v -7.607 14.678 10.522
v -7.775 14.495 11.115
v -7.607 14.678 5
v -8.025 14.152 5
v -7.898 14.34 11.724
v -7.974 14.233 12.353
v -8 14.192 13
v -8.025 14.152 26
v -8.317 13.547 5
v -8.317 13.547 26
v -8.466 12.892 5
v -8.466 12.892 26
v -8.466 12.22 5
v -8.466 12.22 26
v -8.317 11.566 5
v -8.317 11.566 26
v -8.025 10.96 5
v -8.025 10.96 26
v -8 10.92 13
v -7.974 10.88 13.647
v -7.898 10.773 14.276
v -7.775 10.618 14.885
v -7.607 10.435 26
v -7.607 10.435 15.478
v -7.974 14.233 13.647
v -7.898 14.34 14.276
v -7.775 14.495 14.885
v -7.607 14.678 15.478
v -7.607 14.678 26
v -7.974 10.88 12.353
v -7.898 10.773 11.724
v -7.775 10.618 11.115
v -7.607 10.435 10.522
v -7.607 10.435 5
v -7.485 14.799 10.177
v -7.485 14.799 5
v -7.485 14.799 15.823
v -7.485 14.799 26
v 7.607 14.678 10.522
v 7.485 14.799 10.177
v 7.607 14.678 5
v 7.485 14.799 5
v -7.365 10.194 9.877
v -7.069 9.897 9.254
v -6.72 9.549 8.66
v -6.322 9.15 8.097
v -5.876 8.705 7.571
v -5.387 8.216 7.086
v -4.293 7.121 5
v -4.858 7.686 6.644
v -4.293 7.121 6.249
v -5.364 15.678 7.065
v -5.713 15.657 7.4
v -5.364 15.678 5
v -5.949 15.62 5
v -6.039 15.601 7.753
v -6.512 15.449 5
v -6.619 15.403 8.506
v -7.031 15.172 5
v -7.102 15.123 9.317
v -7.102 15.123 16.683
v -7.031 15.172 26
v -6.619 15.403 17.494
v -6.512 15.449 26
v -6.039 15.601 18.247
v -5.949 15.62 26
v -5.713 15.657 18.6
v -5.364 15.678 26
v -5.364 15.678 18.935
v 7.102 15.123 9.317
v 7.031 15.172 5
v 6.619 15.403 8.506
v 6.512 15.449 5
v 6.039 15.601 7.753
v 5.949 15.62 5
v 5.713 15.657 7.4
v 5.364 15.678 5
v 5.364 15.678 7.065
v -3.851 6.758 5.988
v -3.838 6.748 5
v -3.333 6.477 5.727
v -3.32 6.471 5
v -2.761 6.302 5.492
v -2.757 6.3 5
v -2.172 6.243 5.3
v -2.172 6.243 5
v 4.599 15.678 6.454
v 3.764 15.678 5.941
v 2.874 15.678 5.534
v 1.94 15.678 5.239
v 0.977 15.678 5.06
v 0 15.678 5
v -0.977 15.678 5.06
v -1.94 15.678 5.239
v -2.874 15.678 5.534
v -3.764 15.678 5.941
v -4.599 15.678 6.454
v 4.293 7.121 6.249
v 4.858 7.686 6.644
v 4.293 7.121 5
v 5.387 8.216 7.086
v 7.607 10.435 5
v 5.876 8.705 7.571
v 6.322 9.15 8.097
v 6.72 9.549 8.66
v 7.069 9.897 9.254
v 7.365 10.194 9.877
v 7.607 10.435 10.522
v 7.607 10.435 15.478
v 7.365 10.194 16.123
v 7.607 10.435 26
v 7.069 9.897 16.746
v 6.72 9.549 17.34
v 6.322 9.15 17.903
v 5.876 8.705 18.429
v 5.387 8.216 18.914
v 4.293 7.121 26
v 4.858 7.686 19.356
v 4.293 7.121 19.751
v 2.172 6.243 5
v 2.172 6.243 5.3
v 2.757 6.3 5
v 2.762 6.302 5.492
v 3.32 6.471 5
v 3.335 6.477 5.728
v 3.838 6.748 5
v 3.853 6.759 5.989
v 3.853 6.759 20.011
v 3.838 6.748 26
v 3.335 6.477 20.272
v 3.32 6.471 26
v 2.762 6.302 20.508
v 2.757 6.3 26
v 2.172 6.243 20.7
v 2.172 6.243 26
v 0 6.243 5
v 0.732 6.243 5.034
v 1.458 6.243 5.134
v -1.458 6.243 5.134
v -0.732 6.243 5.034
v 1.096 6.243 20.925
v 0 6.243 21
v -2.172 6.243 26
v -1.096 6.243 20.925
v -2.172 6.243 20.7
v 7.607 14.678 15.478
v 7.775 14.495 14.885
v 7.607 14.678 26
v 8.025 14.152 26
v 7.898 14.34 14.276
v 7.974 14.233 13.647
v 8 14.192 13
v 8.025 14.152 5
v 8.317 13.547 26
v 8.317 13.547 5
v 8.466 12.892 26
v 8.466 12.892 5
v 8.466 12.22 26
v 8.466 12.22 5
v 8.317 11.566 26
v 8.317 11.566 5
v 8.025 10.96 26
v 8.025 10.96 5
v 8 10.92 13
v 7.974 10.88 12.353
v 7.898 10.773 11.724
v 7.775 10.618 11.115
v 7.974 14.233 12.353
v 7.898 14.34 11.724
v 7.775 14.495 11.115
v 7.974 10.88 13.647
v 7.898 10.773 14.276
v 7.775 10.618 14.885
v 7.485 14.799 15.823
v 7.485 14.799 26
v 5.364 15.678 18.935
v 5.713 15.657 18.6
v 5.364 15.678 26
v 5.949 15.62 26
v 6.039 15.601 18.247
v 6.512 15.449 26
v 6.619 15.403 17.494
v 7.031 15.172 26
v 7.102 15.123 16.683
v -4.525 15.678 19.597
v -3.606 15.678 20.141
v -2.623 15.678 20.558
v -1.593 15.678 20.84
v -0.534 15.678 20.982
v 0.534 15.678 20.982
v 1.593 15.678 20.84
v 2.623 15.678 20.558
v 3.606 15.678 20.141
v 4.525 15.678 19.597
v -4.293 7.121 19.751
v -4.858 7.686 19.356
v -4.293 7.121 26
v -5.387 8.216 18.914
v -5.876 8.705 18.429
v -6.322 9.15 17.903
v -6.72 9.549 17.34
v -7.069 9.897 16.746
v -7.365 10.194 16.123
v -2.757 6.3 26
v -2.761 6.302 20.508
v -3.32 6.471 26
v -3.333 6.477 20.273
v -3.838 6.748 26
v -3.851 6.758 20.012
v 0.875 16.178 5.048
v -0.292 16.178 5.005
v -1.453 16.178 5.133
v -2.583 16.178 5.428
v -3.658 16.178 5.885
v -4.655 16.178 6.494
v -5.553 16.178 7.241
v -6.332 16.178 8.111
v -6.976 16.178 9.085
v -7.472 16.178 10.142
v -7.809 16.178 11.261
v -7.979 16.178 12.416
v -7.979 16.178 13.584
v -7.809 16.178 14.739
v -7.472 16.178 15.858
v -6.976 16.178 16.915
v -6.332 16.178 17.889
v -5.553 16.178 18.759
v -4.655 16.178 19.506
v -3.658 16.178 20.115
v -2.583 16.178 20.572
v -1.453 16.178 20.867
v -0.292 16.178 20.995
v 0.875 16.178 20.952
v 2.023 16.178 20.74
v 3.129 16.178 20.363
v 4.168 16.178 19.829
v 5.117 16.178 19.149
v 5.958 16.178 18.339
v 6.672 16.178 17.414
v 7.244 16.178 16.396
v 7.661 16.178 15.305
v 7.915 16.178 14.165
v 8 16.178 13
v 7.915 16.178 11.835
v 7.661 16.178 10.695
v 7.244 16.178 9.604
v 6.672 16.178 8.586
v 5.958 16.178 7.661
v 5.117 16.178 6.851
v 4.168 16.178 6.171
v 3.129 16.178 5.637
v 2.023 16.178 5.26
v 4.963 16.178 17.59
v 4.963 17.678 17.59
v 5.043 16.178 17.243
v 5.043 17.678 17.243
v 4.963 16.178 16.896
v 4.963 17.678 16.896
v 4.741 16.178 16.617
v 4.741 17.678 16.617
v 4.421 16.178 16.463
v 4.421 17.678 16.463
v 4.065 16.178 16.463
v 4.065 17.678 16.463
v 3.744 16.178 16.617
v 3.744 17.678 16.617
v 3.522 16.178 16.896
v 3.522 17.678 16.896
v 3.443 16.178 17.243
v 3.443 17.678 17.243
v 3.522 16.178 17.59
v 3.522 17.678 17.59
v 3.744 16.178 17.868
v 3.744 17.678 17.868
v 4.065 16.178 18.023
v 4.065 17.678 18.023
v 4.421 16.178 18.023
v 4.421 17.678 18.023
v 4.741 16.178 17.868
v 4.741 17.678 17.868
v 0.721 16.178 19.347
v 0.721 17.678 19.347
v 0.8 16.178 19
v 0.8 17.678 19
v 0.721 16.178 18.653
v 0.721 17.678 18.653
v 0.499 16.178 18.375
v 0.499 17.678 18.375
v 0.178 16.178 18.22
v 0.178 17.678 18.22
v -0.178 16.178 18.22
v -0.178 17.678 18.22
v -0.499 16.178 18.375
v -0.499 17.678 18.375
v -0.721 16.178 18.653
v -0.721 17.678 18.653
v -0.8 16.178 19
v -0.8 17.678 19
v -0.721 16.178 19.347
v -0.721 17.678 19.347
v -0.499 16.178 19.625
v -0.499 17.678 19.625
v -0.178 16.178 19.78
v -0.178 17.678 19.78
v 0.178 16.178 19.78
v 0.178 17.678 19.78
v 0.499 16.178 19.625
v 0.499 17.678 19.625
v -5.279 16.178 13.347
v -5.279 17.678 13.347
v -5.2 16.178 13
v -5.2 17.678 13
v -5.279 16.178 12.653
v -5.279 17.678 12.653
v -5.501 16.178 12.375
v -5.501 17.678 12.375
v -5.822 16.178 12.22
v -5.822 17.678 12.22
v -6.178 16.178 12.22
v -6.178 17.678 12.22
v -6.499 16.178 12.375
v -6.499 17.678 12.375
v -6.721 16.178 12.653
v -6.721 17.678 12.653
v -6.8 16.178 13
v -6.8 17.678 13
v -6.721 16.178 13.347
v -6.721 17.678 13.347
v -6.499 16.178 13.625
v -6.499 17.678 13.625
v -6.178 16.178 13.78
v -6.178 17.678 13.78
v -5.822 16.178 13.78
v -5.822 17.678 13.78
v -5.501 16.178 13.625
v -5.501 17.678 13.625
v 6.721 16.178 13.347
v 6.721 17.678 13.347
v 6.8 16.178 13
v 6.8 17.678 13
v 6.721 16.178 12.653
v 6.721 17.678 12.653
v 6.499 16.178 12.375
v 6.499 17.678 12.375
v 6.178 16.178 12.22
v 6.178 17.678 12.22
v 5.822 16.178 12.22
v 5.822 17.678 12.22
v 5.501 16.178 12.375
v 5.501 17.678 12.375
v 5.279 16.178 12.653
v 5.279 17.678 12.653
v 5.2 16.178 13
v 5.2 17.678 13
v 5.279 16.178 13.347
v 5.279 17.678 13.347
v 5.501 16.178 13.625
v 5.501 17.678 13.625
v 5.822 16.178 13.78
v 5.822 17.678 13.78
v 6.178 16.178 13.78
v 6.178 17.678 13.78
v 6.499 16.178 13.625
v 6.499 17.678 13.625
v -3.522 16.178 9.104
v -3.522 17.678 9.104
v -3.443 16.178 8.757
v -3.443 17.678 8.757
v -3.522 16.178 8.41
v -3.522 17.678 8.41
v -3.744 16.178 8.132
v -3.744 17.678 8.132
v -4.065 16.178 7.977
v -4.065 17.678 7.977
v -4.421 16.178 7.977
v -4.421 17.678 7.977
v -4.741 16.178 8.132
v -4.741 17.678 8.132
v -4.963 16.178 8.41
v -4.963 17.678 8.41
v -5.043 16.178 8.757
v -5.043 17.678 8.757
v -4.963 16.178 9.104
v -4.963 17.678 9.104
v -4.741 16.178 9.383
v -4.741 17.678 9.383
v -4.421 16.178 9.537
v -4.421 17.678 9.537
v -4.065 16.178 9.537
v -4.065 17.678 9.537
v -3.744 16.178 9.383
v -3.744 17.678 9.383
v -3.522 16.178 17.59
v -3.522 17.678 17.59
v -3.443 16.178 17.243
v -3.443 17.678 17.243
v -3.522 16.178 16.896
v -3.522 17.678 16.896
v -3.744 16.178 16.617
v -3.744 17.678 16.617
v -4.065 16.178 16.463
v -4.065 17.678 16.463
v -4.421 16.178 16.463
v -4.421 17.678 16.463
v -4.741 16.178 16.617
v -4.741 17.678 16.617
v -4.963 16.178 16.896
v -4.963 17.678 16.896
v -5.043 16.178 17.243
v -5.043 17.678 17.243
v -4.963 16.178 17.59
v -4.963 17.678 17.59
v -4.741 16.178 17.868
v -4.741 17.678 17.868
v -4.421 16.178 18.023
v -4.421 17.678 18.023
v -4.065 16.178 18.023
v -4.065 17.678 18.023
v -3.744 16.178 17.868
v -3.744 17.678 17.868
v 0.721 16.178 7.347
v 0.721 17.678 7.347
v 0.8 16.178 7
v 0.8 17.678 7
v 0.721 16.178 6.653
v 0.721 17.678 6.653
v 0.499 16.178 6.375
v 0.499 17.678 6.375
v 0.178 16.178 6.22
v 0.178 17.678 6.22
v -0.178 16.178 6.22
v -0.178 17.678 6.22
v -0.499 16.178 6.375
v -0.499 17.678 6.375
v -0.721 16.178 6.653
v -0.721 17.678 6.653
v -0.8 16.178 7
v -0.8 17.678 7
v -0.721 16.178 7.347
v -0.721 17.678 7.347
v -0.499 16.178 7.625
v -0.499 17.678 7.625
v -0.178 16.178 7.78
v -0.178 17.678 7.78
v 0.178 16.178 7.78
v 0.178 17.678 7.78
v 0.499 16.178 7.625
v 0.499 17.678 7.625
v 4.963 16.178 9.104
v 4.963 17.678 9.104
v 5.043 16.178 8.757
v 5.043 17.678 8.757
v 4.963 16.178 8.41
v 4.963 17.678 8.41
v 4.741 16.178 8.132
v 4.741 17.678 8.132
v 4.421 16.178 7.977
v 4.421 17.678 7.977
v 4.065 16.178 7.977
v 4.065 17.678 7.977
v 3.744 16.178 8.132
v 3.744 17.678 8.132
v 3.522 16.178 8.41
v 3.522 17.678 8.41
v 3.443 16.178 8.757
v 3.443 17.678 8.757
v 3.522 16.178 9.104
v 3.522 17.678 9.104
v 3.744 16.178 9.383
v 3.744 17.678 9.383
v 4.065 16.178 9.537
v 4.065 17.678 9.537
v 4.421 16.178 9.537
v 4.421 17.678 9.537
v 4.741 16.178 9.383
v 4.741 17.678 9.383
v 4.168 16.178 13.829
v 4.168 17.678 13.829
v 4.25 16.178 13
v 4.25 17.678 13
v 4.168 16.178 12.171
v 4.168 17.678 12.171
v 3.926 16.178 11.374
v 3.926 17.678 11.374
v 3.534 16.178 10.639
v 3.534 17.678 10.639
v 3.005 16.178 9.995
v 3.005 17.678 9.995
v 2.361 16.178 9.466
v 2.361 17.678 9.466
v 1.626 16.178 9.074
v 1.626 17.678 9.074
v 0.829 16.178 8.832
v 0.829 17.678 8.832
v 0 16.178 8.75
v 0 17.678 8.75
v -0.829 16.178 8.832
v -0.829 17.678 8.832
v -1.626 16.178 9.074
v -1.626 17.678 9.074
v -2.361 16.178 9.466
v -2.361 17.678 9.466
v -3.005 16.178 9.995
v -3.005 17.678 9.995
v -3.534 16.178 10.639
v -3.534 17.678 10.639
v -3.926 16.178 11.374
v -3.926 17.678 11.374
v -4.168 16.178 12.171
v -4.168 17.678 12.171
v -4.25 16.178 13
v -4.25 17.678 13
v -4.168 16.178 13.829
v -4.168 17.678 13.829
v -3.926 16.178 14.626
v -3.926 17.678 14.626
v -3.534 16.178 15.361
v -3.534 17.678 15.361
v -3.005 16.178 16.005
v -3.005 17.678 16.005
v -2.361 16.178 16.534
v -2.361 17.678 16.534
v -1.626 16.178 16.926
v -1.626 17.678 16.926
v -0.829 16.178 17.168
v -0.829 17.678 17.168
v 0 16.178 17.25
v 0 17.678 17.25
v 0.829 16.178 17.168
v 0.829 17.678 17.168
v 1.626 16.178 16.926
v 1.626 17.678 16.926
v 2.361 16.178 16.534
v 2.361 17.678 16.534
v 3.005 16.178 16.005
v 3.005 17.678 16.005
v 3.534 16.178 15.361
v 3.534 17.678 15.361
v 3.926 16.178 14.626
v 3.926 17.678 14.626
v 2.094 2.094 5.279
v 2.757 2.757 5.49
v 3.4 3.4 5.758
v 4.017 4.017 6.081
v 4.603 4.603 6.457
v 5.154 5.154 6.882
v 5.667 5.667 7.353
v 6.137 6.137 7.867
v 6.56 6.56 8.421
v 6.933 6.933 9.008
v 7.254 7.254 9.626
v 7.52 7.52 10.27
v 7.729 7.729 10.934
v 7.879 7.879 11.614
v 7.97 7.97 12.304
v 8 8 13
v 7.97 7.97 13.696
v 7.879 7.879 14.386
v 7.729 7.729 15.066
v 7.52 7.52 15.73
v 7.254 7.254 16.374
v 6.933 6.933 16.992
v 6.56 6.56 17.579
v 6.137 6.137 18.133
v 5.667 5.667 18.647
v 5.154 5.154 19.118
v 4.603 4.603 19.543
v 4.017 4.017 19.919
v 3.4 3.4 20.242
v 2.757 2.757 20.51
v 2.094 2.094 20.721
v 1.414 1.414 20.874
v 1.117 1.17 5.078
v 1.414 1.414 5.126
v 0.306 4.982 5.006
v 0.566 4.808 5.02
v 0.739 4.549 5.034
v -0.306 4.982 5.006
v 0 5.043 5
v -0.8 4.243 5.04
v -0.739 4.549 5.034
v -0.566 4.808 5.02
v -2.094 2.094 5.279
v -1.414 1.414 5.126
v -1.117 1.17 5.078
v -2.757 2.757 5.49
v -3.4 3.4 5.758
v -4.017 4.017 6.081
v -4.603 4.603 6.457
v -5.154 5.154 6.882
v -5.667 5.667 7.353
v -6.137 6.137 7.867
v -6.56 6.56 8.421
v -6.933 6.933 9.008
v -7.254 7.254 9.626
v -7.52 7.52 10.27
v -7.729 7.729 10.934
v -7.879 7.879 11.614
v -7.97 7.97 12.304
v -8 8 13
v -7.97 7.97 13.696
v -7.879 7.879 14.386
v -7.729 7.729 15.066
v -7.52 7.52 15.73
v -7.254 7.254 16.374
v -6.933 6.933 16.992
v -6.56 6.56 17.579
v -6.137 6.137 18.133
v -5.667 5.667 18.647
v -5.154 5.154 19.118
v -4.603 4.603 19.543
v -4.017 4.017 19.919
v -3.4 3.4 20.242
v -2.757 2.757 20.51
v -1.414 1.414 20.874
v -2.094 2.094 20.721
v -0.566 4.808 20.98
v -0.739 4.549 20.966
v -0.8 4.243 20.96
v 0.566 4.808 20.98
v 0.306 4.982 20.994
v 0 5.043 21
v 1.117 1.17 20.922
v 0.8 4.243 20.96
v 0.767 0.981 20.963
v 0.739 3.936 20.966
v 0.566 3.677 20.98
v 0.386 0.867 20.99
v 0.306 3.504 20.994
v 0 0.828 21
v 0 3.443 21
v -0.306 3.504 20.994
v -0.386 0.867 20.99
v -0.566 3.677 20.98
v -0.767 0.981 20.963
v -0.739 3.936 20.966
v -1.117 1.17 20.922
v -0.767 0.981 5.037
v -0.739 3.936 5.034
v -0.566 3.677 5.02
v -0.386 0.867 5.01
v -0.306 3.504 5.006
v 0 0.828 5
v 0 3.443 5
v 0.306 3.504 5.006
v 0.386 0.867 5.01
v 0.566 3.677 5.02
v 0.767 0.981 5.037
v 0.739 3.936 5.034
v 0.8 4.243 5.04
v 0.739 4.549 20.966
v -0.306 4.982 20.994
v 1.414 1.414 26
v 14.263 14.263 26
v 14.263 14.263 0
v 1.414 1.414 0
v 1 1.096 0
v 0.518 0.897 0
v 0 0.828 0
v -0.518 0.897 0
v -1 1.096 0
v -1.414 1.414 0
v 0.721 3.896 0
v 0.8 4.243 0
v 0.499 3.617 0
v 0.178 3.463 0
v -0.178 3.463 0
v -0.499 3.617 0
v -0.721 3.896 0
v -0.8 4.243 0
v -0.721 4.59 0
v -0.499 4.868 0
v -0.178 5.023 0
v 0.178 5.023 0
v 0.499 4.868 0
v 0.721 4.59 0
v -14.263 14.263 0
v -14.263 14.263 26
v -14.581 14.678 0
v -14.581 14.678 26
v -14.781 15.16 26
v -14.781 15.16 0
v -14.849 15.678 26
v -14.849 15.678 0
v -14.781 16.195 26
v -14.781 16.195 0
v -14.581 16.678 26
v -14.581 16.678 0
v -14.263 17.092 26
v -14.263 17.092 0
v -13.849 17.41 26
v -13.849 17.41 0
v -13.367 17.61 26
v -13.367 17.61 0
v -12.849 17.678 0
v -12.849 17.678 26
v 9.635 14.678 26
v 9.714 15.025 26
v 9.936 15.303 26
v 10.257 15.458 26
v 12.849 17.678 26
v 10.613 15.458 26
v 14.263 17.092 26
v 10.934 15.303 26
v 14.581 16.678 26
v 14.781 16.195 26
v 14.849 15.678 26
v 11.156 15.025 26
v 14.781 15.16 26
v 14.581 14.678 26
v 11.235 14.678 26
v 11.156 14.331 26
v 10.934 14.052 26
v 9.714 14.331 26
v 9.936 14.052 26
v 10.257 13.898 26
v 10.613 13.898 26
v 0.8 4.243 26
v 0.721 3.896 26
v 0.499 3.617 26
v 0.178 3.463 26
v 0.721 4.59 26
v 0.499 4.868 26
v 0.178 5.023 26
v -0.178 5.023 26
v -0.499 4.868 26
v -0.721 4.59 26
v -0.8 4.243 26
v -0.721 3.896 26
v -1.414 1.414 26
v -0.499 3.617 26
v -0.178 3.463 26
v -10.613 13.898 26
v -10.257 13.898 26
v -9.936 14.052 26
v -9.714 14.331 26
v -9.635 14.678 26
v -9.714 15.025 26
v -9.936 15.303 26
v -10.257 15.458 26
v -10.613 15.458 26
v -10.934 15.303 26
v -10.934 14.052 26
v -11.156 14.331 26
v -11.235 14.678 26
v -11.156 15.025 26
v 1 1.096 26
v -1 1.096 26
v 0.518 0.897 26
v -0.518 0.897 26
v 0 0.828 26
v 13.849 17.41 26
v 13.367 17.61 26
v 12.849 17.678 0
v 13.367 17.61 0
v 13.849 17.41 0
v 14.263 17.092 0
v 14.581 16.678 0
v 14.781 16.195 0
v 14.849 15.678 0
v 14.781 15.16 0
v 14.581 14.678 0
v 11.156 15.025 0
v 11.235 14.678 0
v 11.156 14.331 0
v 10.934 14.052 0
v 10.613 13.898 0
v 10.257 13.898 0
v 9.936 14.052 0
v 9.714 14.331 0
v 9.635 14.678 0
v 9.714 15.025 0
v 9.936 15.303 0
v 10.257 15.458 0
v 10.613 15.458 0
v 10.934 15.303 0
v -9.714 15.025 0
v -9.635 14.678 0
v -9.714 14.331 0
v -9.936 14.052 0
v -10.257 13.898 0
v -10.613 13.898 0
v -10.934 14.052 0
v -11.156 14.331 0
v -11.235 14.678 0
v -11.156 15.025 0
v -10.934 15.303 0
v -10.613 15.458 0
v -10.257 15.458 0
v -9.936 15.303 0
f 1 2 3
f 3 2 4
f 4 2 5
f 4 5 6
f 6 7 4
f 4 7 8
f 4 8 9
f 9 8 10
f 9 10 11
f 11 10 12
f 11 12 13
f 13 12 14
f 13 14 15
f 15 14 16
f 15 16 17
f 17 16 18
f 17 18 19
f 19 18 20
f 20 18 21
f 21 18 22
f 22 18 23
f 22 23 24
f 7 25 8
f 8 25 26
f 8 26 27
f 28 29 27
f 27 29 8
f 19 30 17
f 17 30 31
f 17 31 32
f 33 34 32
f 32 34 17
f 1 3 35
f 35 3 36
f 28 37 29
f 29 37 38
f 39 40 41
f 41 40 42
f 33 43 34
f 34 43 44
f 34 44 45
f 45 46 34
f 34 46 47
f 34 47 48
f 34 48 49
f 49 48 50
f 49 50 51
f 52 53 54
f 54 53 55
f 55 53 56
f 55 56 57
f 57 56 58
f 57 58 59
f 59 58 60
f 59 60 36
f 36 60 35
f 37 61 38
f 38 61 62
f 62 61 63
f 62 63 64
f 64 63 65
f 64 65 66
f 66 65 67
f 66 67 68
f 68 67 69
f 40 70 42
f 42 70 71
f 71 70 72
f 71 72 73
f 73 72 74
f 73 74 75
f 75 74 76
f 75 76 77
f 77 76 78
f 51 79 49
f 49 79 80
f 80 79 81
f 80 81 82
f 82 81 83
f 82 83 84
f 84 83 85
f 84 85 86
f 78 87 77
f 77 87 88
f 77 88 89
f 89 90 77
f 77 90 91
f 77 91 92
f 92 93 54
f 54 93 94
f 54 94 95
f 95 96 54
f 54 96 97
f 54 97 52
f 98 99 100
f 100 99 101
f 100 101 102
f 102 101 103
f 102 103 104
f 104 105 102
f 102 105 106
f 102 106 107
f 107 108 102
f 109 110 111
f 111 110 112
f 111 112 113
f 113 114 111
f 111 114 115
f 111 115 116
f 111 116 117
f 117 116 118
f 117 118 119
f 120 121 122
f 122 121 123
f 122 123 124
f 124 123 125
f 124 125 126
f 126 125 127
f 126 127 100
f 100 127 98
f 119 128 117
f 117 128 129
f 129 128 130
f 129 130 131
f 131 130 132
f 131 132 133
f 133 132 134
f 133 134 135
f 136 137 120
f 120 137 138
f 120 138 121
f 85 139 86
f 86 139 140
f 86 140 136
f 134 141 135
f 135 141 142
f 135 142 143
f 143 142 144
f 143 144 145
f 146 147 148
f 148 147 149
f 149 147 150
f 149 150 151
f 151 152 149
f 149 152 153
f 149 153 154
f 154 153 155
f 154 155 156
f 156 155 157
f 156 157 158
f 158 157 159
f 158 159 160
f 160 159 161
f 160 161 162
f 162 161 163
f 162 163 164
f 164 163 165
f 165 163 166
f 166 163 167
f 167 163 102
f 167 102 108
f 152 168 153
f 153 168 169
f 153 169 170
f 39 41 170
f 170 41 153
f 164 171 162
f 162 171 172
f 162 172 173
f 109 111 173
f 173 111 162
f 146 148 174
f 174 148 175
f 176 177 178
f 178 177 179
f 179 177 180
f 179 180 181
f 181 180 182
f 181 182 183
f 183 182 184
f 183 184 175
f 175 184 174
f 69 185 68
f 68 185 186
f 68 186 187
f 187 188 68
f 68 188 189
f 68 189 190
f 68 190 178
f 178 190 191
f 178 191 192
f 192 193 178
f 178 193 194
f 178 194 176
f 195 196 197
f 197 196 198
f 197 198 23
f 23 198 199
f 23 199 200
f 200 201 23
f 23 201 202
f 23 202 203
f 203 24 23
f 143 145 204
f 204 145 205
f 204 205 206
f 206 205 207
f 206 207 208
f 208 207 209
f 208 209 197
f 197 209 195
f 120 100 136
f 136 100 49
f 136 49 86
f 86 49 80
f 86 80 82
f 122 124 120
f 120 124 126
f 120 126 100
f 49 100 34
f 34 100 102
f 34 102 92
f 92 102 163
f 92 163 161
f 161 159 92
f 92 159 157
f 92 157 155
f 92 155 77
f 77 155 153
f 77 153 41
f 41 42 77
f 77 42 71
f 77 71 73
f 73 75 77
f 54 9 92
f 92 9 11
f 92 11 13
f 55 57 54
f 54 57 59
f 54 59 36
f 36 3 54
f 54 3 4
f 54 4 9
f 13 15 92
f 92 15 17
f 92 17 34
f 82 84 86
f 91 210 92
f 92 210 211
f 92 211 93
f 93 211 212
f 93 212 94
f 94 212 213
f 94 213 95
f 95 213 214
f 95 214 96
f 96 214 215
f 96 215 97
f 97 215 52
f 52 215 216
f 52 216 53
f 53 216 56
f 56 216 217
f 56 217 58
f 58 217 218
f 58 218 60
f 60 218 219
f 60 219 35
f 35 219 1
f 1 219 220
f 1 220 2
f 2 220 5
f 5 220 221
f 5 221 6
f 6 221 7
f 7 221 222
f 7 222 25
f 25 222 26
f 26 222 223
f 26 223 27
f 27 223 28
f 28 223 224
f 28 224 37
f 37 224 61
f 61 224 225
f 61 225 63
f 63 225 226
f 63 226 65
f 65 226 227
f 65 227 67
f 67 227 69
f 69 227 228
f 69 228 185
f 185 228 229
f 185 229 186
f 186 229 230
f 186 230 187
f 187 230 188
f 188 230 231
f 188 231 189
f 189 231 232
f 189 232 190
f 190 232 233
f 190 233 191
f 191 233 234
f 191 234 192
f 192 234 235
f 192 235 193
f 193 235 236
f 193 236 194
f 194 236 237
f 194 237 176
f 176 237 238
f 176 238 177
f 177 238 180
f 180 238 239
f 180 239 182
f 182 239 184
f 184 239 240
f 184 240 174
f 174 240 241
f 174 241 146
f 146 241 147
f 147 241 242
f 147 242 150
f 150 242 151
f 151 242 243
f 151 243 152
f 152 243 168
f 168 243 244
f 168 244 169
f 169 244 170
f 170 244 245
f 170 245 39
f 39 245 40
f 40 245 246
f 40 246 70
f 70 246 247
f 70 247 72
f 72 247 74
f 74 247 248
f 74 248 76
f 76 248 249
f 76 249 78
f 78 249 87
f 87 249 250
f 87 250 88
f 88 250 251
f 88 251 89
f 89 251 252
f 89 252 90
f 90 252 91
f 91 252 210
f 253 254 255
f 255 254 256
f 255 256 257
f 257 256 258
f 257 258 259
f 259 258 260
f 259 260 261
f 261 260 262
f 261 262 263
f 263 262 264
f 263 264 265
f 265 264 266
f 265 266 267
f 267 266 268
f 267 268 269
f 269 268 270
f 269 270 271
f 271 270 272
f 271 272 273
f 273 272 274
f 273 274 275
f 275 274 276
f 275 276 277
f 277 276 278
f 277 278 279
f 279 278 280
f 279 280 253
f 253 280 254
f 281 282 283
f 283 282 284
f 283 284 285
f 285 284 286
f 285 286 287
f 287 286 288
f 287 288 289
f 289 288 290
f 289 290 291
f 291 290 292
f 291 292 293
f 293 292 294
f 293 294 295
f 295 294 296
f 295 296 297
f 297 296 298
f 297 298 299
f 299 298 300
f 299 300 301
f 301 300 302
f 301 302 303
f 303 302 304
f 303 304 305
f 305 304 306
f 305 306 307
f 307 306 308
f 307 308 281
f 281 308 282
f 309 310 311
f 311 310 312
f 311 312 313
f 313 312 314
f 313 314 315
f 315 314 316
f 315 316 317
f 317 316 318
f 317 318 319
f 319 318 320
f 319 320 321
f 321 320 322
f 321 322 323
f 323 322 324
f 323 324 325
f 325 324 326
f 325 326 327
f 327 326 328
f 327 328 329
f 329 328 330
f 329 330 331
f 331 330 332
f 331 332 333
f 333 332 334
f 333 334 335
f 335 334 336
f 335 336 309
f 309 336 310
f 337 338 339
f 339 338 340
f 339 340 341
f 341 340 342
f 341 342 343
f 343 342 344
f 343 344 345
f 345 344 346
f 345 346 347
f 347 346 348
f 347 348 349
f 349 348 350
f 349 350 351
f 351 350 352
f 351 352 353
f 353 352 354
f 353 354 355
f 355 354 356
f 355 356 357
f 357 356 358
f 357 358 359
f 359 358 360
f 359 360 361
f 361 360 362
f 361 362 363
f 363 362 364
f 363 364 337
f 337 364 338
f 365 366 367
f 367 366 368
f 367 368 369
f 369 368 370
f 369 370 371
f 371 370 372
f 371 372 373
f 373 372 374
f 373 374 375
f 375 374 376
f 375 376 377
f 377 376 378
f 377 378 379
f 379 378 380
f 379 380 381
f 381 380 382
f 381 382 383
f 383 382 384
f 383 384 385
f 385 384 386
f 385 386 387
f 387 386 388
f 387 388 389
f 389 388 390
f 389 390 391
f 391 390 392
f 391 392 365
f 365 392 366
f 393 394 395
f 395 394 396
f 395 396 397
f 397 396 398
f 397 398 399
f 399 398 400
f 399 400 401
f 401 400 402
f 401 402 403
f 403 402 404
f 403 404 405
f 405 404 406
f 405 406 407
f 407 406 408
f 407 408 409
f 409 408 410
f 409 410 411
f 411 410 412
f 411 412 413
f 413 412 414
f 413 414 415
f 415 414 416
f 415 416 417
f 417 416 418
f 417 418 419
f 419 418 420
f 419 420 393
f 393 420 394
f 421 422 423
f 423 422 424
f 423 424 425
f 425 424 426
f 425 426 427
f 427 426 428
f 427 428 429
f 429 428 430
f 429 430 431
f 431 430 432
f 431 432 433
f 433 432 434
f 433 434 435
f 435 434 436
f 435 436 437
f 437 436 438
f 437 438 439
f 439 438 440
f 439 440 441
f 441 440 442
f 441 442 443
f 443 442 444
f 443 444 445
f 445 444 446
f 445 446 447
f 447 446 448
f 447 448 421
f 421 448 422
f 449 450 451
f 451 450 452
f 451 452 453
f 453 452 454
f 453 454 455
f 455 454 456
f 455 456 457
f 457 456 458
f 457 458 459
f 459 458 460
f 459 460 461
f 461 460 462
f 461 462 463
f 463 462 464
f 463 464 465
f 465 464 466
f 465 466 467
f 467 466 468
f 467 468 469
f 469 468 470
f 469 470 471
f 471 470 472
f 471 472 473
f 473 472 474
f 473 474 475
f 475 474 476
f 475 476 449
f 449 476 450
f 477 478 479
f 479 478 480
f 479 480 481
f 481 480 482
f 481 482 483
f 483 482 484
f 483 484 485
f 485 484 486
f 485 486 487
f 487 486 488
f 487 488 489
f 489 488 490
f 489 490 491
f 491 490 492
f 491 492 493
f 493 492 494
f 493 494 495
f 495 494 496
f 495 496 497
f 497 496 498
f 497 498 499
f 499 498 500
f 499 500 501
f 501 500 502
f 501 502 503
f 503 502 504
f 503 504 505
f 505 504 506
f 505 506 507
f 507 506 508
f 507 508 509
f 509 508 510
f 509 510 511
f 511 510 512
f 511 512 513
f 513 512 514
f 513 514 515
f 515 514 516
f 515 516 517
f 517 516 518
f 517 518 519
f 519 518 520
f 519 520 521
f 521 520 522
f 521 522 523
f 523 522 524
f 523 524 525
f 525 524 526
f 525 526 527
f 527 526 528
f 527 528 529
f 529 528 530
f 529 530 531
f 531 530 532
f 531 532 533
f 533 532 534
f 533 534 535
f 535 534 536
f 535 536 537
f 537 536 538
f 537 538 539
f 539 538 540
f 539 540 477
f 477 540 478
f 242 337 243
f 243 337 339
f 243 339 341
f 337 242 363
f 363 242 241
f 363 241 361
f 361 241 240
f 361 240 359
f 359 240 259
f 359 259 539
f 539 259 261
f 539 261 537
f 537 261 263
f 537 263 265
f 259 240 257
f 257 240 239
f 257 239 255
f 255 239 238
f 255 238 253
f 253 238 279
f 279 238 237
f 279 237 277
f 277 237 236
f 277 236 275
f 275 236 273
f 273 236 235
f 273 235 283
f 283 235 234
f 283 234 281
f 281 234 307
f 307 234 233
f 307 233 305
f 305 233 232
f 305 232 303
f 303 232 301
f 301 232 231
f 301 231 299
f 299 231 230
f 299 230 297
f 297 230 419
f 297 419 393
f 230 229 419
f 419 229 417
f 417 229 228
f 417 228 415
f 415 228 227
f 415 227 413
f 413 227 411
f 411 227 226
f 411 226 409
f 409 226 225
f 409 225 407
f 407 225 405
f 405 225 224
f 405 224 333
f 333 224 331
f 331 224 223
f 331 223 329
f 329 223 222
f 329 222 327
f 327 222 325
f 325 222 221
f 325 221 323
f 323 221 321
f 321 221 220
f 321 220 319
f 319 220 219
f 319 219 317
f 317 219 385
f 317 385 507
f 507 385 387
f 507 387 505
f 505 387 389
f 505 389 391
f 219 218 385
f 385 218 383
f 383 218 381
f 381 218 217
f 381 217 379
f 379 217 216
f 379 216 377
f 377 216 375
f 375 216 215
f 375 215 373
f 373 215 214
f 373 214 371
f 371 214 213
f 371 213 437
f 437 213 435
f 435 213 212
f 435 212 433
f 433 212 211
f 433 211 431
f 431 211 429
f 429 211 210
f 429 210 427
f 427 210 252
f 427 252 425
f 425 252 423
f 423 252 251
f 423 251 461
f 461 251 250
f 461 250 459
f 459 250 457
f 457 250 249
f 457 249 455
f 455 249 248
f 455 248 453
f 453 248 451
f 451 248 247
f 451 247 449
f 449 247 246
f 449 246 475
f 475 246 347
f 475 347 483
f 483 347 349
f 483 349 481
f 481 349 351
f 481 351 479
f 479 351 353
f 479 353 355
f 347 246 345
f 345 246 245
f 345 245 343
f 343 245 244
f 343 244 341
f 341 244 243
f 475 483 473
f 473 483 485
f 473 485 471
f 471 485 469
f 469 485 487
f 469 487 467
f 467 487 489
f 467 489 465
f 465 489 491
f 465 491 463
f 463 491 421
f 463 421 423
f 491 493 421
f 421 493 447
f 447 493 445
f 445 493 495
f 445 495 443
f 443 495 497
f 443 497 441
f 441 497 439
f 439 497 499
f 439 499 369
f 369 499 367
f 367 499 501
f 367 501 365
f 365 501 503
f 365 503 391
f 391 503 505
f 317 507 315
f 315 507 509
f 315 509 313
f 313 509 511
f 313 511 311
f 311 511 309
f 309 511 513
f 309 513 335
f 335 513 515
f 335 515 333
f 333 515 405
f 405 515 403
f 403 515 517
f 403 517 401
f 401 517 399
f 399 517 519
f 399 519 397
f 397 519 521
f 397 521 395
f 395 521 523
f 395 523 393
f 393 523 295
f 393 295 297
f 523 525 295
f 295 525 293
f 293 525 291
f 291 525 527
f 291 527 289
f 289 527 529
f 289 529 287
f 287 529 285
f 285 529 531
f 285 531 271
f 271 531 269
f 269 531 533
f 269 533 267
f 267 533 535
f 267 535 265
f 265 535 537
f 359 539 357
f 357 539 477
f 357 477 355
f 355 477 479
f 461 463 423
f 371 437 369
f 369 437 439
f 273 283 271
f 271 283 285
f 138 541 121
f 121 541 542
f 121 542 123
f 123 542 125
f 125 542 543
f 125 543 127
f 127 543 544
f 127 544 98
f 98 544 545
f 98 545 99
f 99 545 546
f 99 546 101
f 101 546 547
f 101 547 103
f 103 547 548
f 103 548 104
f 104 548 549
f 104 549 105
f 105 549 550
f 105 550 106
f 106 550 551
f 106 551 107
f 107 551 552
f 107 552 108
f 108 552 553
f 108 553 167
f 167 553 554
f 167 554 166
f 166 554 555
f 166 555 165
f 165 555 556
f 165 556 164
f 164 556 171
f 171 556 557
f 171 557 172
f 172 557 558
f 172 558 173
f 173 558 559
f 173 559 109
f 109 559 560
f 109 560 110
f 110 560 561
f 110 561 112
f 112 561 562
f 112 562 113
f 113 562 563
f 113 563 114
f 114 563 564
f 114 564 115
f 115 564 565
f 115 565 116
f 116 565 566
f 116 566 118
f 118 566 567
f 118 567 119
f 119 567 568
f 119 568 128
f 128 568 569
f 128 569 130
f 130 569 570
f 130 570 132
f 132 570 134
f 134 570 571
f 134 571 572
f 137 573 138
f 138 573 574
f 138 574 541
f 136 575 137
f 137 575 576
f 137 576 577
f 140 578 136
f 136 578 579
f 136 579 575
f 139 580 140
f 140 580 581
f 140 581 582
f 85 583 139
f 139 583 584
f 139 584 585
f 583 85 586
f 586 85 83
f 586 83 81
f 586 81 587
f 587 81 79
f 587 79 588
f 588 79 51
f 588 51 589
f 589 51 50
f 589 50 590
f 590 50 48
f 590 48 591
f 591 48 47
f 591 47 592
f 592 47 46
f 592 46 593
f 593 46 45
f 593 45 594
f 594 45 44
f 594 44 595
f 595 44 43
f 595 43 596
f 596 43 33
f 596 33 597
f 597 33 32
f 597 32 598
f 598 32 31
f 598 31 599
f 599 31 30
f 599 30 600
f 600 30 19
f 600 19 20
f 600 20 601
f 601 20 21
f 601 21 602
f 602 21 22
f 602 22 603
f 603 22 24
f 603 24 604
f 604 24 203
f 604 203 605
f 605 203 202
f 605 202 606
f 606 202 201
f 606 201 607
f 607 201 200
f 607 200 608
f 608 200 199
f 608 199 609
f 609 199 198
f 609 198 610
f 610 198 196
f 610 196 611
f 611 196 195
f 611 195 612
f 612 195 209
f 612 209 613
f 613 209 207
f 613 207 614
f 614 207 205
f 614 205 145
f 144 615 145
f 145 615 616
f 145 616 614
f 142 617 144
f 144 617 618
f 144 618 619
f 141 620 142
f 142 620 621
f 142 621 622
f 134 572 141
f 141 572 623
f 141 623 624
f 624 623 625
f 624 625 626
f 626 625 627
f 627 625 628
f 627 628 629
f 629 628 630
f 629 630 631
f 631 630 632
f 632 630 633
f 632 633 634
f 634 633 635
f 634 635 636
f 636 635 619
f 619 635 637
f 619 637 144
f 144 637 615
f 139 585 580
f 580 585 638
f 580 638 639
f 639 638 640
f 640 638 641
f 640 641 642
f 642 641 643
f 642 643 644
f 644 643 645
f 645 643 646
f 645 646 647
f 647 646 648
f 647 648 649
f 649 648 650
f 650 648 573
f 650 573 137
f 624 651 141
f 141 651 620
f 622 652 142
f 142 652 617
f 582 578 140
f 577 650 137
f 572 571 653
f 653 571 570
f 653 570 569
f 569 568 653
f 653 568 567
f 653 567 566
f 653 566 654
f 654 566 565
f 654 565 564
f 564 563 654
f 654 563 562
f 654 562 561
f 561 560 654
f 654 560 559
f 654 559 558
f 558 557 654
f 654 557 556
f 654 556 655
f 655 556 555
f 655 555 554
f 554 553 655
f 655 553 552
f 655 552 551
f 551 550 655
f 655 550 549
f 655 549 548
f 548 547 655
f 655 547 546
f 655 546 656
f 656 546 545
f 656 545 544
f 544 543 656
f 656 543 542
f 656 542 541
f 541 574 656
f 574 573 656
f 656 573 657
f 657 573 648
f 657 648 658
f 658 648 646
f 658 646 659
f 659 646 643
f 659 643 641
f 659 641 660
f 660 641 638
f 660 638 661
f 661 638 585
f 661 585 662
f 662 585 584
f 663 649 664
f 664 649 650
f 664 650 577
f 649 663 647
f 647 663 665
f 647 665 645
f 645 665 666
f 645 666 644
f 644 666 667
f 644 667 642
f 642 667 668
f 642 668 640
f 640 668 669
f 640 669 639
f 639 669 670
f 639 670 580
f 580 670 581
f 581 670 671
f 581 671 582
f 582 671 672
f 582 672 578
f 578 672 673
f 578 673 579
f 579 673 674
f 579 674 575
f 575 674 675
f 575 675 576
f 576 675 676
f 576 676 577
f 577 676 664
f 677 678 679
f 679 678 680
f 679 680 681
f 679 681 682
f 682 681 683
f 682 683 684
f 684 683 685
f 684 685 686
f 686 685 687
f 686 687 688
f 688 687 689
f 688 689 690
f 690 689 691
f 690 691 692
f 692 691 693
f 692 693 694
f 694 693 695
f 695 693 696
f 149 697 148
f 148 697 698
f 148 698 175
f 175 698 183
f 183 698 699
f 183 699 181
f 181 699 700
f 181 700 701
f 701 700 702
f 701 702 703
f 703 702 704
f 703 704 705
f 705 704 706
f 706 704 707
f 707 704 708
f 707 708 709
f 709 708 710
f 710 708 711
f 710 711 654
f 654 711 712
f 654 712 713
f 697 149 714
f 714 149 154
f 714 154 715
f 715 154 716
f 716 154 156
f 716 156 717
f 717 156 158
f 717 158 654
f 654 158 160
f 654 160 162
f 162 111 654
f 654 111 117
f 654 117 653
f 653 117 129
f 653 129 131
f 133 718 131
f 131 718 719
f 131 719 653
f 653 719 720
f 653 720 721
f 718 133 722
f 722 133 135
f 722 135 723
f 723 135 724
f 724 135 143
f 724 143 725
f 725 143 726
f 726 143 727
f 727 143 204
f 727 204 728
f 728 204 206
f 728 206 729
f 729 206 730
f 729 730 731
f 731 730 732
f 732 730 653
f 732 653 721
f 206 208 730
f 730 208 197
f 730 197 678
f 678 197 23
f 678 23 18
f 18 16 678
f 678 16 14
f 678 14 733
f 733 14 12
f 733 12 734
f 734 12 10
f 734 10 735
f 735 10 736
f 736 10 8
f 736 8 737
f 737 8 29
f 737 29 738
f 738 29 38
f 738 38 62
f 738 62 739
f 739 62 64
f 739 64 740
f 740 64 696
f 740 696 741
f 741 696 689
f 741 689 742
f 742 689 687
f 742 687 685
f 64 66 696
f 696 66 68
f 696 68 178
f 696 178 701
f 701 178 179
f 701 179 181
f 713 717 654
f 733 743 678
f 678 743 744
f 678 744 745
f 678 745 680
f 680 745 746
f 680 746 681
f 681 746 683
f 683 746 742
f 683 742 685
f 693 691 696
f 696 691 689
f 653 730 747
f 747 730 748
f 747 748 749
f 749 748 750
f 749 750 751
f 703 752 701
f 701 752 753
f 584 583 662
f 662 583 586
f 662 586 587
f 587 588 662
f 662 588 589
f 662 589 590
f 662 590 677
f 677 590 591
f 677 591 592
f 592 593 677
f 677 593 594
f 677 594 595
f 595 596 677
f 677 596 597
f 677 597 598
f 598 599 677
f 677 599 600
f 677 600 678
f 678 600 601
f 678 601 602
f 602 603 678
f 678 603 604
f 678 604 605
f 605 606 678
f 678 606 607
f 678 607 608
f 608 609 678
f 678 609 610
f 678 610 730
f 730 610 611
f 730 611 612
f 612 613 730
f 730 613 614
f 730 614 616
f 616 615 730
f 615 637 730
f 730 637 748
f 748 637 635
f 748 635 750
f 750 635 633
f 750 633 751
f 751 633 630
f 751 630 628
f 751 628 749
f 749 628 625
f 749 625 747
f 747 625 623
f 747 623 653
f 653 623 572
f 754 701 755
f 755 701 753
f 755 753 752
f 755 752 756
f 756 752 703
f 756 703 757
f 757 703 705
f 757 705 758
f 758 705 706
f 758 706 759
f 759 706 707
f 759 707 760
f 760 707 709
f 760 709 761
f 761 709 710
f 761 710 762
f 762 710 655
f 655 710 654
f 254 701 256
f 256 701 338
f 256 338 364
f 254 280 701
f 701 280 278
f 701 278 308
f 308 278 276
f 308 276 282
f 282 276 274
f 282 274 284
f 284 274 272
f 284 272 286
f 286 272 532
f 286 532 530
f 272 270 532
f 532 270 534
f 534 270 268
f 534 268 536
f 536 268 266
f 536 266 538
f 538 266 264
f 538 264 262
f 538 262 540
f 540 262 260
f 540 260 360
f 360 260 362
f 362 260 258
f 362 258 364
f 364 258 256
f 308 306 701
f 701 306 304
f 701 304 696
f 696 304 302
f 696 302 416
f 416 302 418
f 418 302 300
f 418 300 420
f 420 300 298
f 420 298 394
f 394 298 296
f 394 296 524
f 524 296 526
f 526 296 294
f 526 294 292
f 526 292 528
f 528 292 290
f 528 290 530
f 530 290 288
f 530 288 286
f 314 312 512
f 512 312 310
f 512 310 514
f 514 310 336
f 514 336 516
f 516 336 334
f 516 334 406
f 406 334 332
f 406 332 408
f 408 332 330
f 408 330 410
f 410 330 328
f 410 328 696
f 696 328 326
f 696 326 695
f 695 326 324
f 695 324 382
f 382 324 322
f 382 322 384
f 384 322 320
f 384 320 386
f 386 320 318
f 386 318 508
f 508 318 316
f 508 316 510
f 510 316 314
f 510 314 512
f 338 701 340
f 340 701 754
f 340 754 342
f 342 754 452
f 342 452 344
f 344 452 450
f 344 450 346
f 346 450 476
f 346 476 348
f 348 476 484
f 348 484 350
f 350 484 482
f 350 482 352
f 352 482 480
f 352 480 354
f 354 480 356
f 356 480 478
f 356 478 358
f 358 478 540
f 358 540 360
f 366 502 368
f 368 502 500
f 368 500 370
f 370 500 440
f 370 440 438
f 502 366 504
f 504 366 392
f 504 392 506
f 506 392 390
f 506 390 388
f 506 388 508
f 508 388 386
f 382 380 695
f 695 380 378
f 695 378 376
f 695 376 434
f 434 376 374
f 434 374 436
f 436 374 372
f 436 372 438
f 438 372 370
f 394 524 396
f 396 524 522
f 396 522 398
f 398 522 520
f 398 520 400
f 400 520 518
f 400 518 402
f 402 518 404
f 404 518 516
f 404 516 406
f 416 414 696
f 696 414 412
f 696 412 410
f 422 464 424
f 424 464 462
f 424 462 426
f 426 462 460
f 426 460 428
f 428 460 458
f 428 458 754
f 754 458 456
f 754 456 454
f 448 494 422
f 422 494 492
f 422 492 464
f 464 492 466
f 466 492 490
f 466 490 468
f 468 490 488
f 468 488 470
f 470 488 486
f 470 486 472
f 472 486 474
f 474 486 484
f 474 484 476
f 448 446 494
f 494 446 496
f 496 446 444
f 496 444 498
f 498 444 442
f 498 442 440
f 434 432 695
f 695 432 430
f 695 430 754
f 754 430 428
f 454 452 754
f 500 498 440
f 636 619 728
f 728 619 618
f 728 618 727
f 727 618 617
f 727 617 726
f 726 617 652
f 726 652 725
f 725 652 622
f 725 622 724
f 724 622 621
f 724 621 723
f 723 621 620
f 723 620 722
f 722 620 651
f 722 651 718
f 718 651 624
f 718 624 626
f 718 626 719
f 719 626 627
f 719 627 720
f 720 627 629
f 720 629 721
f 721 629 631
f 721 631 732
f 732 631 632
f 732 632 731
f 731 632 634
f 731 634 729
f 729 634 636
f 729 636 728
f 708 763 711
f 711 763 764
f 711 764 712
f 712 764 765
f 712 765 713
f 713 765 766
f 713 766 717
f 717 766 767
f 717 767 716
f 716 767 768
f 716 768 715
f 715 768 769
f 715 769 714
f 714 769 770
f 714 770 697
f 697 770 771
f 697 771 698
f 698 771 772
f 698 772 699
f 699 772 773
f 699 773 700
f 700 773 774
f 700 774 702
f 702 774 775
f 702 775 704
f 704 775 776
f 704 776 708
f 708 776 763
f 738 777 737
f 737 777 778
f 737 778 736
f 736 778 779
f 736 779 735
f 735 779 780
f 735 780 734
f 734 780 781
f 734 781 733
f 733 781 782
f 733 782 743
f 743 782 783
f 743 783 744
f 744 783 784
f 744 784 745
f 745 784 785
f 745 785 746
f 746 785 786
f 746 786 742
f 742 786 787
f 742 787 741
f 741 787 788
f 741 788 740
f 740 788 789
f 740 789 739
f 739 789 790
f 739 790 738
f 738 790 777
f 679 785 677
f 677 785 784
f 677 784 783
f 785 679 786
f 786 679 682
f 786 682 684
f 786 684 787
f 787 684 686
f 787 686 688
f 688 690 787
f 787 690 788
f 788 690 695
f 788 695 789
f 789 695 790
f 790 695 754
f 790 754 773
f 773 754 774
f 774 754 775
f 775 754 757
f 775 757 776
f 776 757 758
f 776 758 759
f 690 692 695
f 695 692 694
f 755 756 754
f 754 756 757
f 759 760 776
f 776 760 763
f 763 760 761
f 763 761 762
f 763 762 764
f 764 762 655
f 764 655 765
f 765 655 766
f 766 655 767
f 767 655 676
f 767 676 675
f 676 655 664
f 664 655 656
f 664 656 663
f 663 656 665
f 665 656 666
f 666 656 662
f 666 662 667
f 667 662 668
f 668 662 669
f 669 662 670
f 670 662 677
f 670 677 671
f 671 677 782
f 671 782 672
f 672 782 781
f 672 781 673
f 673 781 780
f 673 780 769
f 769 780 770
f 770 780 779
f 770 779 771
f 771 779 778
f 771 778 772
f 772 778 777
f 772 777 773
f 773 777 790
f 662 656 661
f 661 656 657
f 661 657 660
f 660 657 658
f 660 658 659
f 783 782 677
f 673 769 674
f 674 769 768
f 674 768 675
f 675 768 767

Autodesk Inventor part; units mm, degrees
ref_plane "YZ Plane" through (0, 0, 0) normal (1, 0, 0) x (0, 1, 0)
ref_plane "XZ Plane" through (0, 0, 0) normal (0, 1, 0) x (-1, 0, 0)
ref_plane "XY Plane" through (0, 0, 0) normal (0, 0, 1) x (1, 0, 0)
sketch "スケッチ1" plane through (0, 0, 0) normal (0, 0, 1) x (1, 0, 0)
  line L0 (0, 0) -> (-17.6777, 17.6777)
  line L1 (-17.6777, 17.6777) -> (17.6777, 17.6777)
  line L2 (17.6777, 17.6777) -> (0, 0)
  line L3 (-17.6777, 17.6777) -> (-21.2487, 14.1066)
  line L4 (0, 0) -> (-2.2909, -2.2909)
  circle A0 centre (-10.435, 14.6777) radius 0.8
  circle A1 centre (10.435, 14.6777) radius 0.8
  circle A2 centre (0, 4.2426) radius 0.8
  dimension "d0" = 25
  dimension "d1" = 45
  dimension "d5" = 1.6
  dimension "d6" = 1.6
  dimension "d7" = 1.6
  dimension "d8" = 3
  dimension "d9" = 3
  dimension "d10" = 3
  dimension "d11" = 3
  dimension "d12" = 3
  dimension "d13" = 3
extrude "押し出し1" add sketch "スケッチ1" along normal blind 26
fillet "フィレット1" radius 2 3 edges at (17.6777, 17.6777, 13) (0, 0, 13) (-17.6777, 17.6777, 13)
sketch "スケッチ2" plane through (-12.8492, 17.6777, 0) normal (0, 1, 0) x (1, 0, 0)
  line L0 (0, -26) -> (0, 0) projected
  line L1 (25.6985, -26) -> (0, -26) projected
  line L2 (25.6985, 0) -> (25.6985, -26) projected
  line L3 (25.6985, 0) -> (0, 0) projected
  line L4 (25.6985, -26) -> (0, 0)
  line L5 (0, -26) -> (-2, -26) projected
  line L6 (0, -26) -> (25.6985, 0)
  circle A0 centre (12.8492, -13) radius 4.25
  circle A1 centre (12.8492, -13) radius 6 construction
  circle A2 centre (12.8492, -19) radius 0.8
  circle A3 centre (17.0919, -17.2426) radius 0.8
  circle A4 centre (18.8492, -13) radius 0.8
  circle A5 centre (17.0919, -8.7574) radius 0.8
  circle A6 centre (12.8492, -7) radius 0.8
  circle A7 centre (8.6066, -8.7574) radius 0.8
  circle A8 centre (12.8492, -13) radius 8
  circle A9 centre (6.8492, -13) radius 0.8
  circle A10 centre (8.6066, -17.2426) radius 0.8
  point P0 (12.8492, 0)
  point P1 (-1.4142, -26)
  dimension "d15" = 12
  dimension "d14" = 8.5
  dimension "d16" = 1.6
  dimension "d23" = 360
  dimension "d25" = 16
extrude "押し出し2" cut sketch "スケッチ2" against normal through all contours A8 L4 A7 A0 L6 A10 | L6 A10 A0 L4 A3 A8 | A8 L6 A5 A0 L4 A7 | L4 A3 A0 L6 A5 A8 | A10 L6 | L6 A10 | A7 L4 | L4 A7 | A3 L4 | L4 A3 | A5 L6 | L6 A5 | A0 L4 L6 | L6 L4 A0 | A0 L6 L4 | L4 L6 A0 | A2 | A4 | A6 | A9
extrude "押し出し3" add sketch "スケッチ2" against normal blind 1.5 contours A8 L4 A7 A0 L6 A10 | L6 A10 A0 L4 A3 A8 | A8 L6 A5 A0 L4 A7 | L4 A3 A0 L6 A5 A8
sketch "スケッチ4" plane through (0, 0, 26) normal (0, 0, 1) x (1, 0, 0)
  line L0 (-4.2929, 7.1213) -> (-7.6066, 10.435) projected
  arc A0 (-7.6066, 14.6777) -> (-7.6066, 10.435) centre (-5.4853, 12.5563) ccw projected
  arc A1 (-5.364, 15.6777) -> (-7.4853, 14.799) centre (-5.364, 12.6777) ccw projected
  line L1 (-7.6066, 14.6777) -> (-7.4853, 14.799) projected
  line L2 (-5.364, 15.6777) -> (5.364, 15.6777) projected
  arc A2 (7.4853, 14.799) -> (5.364, 15.6777) centre (5.364, 12.6777) ccw projected
  arc A3 (7.6066, 10.435) -> (7.6066, 14.6777) centre (5.4853, 12.5563) ccw projected
  line L3 (7.4853, 14.799) -> (7.6066, 14.6777) projected
  line L4 (7.6066, 10.435) -> (4.2929, 7.1213) projected
  arc A4 (2.1716, 6.2426) -> (4.2929, 7.1213) centre (2.1716, 9.2426) ccw projected
  line L5 (2.1716, 6.2426) -> (-2.1716, 6.2426) projected
  arc A5 (-4.2929, 7.1213) -> (-2.1716, 6.2426) centre (-2.1716, 9.2426) ccw projected
  point P0 (0, 0)
extrude "押し出し5" cut sketch "スケッチ4" against normal blind 21
equation "\"d9\" = d8"
equation "\"d10\" = d8"
equation "\"d11\" = d8"
equation "\"d12\" = d8"
equation "\"d13\" = d8"
equation "\"BendRadius\" = Thickness"
equation "\"BendReliefWidth\" = Thickness"
equation "\"BendReliefDepth\" = 0.5 * Thickness"
equation "\"CornerReliefSize\" = 4 * Thickness"
equation "\"MinimumRemnant\" = 2 * Thickness"
equation "\"TransitionRadius\" = BendRadius"
equation "\"JacobiRadiusSize\" = BendRadius"
equation "\"GapSize\" = Thickness"
equation "\"Thickness\" = 3.048"
properties part number "hipjoint_middle"
